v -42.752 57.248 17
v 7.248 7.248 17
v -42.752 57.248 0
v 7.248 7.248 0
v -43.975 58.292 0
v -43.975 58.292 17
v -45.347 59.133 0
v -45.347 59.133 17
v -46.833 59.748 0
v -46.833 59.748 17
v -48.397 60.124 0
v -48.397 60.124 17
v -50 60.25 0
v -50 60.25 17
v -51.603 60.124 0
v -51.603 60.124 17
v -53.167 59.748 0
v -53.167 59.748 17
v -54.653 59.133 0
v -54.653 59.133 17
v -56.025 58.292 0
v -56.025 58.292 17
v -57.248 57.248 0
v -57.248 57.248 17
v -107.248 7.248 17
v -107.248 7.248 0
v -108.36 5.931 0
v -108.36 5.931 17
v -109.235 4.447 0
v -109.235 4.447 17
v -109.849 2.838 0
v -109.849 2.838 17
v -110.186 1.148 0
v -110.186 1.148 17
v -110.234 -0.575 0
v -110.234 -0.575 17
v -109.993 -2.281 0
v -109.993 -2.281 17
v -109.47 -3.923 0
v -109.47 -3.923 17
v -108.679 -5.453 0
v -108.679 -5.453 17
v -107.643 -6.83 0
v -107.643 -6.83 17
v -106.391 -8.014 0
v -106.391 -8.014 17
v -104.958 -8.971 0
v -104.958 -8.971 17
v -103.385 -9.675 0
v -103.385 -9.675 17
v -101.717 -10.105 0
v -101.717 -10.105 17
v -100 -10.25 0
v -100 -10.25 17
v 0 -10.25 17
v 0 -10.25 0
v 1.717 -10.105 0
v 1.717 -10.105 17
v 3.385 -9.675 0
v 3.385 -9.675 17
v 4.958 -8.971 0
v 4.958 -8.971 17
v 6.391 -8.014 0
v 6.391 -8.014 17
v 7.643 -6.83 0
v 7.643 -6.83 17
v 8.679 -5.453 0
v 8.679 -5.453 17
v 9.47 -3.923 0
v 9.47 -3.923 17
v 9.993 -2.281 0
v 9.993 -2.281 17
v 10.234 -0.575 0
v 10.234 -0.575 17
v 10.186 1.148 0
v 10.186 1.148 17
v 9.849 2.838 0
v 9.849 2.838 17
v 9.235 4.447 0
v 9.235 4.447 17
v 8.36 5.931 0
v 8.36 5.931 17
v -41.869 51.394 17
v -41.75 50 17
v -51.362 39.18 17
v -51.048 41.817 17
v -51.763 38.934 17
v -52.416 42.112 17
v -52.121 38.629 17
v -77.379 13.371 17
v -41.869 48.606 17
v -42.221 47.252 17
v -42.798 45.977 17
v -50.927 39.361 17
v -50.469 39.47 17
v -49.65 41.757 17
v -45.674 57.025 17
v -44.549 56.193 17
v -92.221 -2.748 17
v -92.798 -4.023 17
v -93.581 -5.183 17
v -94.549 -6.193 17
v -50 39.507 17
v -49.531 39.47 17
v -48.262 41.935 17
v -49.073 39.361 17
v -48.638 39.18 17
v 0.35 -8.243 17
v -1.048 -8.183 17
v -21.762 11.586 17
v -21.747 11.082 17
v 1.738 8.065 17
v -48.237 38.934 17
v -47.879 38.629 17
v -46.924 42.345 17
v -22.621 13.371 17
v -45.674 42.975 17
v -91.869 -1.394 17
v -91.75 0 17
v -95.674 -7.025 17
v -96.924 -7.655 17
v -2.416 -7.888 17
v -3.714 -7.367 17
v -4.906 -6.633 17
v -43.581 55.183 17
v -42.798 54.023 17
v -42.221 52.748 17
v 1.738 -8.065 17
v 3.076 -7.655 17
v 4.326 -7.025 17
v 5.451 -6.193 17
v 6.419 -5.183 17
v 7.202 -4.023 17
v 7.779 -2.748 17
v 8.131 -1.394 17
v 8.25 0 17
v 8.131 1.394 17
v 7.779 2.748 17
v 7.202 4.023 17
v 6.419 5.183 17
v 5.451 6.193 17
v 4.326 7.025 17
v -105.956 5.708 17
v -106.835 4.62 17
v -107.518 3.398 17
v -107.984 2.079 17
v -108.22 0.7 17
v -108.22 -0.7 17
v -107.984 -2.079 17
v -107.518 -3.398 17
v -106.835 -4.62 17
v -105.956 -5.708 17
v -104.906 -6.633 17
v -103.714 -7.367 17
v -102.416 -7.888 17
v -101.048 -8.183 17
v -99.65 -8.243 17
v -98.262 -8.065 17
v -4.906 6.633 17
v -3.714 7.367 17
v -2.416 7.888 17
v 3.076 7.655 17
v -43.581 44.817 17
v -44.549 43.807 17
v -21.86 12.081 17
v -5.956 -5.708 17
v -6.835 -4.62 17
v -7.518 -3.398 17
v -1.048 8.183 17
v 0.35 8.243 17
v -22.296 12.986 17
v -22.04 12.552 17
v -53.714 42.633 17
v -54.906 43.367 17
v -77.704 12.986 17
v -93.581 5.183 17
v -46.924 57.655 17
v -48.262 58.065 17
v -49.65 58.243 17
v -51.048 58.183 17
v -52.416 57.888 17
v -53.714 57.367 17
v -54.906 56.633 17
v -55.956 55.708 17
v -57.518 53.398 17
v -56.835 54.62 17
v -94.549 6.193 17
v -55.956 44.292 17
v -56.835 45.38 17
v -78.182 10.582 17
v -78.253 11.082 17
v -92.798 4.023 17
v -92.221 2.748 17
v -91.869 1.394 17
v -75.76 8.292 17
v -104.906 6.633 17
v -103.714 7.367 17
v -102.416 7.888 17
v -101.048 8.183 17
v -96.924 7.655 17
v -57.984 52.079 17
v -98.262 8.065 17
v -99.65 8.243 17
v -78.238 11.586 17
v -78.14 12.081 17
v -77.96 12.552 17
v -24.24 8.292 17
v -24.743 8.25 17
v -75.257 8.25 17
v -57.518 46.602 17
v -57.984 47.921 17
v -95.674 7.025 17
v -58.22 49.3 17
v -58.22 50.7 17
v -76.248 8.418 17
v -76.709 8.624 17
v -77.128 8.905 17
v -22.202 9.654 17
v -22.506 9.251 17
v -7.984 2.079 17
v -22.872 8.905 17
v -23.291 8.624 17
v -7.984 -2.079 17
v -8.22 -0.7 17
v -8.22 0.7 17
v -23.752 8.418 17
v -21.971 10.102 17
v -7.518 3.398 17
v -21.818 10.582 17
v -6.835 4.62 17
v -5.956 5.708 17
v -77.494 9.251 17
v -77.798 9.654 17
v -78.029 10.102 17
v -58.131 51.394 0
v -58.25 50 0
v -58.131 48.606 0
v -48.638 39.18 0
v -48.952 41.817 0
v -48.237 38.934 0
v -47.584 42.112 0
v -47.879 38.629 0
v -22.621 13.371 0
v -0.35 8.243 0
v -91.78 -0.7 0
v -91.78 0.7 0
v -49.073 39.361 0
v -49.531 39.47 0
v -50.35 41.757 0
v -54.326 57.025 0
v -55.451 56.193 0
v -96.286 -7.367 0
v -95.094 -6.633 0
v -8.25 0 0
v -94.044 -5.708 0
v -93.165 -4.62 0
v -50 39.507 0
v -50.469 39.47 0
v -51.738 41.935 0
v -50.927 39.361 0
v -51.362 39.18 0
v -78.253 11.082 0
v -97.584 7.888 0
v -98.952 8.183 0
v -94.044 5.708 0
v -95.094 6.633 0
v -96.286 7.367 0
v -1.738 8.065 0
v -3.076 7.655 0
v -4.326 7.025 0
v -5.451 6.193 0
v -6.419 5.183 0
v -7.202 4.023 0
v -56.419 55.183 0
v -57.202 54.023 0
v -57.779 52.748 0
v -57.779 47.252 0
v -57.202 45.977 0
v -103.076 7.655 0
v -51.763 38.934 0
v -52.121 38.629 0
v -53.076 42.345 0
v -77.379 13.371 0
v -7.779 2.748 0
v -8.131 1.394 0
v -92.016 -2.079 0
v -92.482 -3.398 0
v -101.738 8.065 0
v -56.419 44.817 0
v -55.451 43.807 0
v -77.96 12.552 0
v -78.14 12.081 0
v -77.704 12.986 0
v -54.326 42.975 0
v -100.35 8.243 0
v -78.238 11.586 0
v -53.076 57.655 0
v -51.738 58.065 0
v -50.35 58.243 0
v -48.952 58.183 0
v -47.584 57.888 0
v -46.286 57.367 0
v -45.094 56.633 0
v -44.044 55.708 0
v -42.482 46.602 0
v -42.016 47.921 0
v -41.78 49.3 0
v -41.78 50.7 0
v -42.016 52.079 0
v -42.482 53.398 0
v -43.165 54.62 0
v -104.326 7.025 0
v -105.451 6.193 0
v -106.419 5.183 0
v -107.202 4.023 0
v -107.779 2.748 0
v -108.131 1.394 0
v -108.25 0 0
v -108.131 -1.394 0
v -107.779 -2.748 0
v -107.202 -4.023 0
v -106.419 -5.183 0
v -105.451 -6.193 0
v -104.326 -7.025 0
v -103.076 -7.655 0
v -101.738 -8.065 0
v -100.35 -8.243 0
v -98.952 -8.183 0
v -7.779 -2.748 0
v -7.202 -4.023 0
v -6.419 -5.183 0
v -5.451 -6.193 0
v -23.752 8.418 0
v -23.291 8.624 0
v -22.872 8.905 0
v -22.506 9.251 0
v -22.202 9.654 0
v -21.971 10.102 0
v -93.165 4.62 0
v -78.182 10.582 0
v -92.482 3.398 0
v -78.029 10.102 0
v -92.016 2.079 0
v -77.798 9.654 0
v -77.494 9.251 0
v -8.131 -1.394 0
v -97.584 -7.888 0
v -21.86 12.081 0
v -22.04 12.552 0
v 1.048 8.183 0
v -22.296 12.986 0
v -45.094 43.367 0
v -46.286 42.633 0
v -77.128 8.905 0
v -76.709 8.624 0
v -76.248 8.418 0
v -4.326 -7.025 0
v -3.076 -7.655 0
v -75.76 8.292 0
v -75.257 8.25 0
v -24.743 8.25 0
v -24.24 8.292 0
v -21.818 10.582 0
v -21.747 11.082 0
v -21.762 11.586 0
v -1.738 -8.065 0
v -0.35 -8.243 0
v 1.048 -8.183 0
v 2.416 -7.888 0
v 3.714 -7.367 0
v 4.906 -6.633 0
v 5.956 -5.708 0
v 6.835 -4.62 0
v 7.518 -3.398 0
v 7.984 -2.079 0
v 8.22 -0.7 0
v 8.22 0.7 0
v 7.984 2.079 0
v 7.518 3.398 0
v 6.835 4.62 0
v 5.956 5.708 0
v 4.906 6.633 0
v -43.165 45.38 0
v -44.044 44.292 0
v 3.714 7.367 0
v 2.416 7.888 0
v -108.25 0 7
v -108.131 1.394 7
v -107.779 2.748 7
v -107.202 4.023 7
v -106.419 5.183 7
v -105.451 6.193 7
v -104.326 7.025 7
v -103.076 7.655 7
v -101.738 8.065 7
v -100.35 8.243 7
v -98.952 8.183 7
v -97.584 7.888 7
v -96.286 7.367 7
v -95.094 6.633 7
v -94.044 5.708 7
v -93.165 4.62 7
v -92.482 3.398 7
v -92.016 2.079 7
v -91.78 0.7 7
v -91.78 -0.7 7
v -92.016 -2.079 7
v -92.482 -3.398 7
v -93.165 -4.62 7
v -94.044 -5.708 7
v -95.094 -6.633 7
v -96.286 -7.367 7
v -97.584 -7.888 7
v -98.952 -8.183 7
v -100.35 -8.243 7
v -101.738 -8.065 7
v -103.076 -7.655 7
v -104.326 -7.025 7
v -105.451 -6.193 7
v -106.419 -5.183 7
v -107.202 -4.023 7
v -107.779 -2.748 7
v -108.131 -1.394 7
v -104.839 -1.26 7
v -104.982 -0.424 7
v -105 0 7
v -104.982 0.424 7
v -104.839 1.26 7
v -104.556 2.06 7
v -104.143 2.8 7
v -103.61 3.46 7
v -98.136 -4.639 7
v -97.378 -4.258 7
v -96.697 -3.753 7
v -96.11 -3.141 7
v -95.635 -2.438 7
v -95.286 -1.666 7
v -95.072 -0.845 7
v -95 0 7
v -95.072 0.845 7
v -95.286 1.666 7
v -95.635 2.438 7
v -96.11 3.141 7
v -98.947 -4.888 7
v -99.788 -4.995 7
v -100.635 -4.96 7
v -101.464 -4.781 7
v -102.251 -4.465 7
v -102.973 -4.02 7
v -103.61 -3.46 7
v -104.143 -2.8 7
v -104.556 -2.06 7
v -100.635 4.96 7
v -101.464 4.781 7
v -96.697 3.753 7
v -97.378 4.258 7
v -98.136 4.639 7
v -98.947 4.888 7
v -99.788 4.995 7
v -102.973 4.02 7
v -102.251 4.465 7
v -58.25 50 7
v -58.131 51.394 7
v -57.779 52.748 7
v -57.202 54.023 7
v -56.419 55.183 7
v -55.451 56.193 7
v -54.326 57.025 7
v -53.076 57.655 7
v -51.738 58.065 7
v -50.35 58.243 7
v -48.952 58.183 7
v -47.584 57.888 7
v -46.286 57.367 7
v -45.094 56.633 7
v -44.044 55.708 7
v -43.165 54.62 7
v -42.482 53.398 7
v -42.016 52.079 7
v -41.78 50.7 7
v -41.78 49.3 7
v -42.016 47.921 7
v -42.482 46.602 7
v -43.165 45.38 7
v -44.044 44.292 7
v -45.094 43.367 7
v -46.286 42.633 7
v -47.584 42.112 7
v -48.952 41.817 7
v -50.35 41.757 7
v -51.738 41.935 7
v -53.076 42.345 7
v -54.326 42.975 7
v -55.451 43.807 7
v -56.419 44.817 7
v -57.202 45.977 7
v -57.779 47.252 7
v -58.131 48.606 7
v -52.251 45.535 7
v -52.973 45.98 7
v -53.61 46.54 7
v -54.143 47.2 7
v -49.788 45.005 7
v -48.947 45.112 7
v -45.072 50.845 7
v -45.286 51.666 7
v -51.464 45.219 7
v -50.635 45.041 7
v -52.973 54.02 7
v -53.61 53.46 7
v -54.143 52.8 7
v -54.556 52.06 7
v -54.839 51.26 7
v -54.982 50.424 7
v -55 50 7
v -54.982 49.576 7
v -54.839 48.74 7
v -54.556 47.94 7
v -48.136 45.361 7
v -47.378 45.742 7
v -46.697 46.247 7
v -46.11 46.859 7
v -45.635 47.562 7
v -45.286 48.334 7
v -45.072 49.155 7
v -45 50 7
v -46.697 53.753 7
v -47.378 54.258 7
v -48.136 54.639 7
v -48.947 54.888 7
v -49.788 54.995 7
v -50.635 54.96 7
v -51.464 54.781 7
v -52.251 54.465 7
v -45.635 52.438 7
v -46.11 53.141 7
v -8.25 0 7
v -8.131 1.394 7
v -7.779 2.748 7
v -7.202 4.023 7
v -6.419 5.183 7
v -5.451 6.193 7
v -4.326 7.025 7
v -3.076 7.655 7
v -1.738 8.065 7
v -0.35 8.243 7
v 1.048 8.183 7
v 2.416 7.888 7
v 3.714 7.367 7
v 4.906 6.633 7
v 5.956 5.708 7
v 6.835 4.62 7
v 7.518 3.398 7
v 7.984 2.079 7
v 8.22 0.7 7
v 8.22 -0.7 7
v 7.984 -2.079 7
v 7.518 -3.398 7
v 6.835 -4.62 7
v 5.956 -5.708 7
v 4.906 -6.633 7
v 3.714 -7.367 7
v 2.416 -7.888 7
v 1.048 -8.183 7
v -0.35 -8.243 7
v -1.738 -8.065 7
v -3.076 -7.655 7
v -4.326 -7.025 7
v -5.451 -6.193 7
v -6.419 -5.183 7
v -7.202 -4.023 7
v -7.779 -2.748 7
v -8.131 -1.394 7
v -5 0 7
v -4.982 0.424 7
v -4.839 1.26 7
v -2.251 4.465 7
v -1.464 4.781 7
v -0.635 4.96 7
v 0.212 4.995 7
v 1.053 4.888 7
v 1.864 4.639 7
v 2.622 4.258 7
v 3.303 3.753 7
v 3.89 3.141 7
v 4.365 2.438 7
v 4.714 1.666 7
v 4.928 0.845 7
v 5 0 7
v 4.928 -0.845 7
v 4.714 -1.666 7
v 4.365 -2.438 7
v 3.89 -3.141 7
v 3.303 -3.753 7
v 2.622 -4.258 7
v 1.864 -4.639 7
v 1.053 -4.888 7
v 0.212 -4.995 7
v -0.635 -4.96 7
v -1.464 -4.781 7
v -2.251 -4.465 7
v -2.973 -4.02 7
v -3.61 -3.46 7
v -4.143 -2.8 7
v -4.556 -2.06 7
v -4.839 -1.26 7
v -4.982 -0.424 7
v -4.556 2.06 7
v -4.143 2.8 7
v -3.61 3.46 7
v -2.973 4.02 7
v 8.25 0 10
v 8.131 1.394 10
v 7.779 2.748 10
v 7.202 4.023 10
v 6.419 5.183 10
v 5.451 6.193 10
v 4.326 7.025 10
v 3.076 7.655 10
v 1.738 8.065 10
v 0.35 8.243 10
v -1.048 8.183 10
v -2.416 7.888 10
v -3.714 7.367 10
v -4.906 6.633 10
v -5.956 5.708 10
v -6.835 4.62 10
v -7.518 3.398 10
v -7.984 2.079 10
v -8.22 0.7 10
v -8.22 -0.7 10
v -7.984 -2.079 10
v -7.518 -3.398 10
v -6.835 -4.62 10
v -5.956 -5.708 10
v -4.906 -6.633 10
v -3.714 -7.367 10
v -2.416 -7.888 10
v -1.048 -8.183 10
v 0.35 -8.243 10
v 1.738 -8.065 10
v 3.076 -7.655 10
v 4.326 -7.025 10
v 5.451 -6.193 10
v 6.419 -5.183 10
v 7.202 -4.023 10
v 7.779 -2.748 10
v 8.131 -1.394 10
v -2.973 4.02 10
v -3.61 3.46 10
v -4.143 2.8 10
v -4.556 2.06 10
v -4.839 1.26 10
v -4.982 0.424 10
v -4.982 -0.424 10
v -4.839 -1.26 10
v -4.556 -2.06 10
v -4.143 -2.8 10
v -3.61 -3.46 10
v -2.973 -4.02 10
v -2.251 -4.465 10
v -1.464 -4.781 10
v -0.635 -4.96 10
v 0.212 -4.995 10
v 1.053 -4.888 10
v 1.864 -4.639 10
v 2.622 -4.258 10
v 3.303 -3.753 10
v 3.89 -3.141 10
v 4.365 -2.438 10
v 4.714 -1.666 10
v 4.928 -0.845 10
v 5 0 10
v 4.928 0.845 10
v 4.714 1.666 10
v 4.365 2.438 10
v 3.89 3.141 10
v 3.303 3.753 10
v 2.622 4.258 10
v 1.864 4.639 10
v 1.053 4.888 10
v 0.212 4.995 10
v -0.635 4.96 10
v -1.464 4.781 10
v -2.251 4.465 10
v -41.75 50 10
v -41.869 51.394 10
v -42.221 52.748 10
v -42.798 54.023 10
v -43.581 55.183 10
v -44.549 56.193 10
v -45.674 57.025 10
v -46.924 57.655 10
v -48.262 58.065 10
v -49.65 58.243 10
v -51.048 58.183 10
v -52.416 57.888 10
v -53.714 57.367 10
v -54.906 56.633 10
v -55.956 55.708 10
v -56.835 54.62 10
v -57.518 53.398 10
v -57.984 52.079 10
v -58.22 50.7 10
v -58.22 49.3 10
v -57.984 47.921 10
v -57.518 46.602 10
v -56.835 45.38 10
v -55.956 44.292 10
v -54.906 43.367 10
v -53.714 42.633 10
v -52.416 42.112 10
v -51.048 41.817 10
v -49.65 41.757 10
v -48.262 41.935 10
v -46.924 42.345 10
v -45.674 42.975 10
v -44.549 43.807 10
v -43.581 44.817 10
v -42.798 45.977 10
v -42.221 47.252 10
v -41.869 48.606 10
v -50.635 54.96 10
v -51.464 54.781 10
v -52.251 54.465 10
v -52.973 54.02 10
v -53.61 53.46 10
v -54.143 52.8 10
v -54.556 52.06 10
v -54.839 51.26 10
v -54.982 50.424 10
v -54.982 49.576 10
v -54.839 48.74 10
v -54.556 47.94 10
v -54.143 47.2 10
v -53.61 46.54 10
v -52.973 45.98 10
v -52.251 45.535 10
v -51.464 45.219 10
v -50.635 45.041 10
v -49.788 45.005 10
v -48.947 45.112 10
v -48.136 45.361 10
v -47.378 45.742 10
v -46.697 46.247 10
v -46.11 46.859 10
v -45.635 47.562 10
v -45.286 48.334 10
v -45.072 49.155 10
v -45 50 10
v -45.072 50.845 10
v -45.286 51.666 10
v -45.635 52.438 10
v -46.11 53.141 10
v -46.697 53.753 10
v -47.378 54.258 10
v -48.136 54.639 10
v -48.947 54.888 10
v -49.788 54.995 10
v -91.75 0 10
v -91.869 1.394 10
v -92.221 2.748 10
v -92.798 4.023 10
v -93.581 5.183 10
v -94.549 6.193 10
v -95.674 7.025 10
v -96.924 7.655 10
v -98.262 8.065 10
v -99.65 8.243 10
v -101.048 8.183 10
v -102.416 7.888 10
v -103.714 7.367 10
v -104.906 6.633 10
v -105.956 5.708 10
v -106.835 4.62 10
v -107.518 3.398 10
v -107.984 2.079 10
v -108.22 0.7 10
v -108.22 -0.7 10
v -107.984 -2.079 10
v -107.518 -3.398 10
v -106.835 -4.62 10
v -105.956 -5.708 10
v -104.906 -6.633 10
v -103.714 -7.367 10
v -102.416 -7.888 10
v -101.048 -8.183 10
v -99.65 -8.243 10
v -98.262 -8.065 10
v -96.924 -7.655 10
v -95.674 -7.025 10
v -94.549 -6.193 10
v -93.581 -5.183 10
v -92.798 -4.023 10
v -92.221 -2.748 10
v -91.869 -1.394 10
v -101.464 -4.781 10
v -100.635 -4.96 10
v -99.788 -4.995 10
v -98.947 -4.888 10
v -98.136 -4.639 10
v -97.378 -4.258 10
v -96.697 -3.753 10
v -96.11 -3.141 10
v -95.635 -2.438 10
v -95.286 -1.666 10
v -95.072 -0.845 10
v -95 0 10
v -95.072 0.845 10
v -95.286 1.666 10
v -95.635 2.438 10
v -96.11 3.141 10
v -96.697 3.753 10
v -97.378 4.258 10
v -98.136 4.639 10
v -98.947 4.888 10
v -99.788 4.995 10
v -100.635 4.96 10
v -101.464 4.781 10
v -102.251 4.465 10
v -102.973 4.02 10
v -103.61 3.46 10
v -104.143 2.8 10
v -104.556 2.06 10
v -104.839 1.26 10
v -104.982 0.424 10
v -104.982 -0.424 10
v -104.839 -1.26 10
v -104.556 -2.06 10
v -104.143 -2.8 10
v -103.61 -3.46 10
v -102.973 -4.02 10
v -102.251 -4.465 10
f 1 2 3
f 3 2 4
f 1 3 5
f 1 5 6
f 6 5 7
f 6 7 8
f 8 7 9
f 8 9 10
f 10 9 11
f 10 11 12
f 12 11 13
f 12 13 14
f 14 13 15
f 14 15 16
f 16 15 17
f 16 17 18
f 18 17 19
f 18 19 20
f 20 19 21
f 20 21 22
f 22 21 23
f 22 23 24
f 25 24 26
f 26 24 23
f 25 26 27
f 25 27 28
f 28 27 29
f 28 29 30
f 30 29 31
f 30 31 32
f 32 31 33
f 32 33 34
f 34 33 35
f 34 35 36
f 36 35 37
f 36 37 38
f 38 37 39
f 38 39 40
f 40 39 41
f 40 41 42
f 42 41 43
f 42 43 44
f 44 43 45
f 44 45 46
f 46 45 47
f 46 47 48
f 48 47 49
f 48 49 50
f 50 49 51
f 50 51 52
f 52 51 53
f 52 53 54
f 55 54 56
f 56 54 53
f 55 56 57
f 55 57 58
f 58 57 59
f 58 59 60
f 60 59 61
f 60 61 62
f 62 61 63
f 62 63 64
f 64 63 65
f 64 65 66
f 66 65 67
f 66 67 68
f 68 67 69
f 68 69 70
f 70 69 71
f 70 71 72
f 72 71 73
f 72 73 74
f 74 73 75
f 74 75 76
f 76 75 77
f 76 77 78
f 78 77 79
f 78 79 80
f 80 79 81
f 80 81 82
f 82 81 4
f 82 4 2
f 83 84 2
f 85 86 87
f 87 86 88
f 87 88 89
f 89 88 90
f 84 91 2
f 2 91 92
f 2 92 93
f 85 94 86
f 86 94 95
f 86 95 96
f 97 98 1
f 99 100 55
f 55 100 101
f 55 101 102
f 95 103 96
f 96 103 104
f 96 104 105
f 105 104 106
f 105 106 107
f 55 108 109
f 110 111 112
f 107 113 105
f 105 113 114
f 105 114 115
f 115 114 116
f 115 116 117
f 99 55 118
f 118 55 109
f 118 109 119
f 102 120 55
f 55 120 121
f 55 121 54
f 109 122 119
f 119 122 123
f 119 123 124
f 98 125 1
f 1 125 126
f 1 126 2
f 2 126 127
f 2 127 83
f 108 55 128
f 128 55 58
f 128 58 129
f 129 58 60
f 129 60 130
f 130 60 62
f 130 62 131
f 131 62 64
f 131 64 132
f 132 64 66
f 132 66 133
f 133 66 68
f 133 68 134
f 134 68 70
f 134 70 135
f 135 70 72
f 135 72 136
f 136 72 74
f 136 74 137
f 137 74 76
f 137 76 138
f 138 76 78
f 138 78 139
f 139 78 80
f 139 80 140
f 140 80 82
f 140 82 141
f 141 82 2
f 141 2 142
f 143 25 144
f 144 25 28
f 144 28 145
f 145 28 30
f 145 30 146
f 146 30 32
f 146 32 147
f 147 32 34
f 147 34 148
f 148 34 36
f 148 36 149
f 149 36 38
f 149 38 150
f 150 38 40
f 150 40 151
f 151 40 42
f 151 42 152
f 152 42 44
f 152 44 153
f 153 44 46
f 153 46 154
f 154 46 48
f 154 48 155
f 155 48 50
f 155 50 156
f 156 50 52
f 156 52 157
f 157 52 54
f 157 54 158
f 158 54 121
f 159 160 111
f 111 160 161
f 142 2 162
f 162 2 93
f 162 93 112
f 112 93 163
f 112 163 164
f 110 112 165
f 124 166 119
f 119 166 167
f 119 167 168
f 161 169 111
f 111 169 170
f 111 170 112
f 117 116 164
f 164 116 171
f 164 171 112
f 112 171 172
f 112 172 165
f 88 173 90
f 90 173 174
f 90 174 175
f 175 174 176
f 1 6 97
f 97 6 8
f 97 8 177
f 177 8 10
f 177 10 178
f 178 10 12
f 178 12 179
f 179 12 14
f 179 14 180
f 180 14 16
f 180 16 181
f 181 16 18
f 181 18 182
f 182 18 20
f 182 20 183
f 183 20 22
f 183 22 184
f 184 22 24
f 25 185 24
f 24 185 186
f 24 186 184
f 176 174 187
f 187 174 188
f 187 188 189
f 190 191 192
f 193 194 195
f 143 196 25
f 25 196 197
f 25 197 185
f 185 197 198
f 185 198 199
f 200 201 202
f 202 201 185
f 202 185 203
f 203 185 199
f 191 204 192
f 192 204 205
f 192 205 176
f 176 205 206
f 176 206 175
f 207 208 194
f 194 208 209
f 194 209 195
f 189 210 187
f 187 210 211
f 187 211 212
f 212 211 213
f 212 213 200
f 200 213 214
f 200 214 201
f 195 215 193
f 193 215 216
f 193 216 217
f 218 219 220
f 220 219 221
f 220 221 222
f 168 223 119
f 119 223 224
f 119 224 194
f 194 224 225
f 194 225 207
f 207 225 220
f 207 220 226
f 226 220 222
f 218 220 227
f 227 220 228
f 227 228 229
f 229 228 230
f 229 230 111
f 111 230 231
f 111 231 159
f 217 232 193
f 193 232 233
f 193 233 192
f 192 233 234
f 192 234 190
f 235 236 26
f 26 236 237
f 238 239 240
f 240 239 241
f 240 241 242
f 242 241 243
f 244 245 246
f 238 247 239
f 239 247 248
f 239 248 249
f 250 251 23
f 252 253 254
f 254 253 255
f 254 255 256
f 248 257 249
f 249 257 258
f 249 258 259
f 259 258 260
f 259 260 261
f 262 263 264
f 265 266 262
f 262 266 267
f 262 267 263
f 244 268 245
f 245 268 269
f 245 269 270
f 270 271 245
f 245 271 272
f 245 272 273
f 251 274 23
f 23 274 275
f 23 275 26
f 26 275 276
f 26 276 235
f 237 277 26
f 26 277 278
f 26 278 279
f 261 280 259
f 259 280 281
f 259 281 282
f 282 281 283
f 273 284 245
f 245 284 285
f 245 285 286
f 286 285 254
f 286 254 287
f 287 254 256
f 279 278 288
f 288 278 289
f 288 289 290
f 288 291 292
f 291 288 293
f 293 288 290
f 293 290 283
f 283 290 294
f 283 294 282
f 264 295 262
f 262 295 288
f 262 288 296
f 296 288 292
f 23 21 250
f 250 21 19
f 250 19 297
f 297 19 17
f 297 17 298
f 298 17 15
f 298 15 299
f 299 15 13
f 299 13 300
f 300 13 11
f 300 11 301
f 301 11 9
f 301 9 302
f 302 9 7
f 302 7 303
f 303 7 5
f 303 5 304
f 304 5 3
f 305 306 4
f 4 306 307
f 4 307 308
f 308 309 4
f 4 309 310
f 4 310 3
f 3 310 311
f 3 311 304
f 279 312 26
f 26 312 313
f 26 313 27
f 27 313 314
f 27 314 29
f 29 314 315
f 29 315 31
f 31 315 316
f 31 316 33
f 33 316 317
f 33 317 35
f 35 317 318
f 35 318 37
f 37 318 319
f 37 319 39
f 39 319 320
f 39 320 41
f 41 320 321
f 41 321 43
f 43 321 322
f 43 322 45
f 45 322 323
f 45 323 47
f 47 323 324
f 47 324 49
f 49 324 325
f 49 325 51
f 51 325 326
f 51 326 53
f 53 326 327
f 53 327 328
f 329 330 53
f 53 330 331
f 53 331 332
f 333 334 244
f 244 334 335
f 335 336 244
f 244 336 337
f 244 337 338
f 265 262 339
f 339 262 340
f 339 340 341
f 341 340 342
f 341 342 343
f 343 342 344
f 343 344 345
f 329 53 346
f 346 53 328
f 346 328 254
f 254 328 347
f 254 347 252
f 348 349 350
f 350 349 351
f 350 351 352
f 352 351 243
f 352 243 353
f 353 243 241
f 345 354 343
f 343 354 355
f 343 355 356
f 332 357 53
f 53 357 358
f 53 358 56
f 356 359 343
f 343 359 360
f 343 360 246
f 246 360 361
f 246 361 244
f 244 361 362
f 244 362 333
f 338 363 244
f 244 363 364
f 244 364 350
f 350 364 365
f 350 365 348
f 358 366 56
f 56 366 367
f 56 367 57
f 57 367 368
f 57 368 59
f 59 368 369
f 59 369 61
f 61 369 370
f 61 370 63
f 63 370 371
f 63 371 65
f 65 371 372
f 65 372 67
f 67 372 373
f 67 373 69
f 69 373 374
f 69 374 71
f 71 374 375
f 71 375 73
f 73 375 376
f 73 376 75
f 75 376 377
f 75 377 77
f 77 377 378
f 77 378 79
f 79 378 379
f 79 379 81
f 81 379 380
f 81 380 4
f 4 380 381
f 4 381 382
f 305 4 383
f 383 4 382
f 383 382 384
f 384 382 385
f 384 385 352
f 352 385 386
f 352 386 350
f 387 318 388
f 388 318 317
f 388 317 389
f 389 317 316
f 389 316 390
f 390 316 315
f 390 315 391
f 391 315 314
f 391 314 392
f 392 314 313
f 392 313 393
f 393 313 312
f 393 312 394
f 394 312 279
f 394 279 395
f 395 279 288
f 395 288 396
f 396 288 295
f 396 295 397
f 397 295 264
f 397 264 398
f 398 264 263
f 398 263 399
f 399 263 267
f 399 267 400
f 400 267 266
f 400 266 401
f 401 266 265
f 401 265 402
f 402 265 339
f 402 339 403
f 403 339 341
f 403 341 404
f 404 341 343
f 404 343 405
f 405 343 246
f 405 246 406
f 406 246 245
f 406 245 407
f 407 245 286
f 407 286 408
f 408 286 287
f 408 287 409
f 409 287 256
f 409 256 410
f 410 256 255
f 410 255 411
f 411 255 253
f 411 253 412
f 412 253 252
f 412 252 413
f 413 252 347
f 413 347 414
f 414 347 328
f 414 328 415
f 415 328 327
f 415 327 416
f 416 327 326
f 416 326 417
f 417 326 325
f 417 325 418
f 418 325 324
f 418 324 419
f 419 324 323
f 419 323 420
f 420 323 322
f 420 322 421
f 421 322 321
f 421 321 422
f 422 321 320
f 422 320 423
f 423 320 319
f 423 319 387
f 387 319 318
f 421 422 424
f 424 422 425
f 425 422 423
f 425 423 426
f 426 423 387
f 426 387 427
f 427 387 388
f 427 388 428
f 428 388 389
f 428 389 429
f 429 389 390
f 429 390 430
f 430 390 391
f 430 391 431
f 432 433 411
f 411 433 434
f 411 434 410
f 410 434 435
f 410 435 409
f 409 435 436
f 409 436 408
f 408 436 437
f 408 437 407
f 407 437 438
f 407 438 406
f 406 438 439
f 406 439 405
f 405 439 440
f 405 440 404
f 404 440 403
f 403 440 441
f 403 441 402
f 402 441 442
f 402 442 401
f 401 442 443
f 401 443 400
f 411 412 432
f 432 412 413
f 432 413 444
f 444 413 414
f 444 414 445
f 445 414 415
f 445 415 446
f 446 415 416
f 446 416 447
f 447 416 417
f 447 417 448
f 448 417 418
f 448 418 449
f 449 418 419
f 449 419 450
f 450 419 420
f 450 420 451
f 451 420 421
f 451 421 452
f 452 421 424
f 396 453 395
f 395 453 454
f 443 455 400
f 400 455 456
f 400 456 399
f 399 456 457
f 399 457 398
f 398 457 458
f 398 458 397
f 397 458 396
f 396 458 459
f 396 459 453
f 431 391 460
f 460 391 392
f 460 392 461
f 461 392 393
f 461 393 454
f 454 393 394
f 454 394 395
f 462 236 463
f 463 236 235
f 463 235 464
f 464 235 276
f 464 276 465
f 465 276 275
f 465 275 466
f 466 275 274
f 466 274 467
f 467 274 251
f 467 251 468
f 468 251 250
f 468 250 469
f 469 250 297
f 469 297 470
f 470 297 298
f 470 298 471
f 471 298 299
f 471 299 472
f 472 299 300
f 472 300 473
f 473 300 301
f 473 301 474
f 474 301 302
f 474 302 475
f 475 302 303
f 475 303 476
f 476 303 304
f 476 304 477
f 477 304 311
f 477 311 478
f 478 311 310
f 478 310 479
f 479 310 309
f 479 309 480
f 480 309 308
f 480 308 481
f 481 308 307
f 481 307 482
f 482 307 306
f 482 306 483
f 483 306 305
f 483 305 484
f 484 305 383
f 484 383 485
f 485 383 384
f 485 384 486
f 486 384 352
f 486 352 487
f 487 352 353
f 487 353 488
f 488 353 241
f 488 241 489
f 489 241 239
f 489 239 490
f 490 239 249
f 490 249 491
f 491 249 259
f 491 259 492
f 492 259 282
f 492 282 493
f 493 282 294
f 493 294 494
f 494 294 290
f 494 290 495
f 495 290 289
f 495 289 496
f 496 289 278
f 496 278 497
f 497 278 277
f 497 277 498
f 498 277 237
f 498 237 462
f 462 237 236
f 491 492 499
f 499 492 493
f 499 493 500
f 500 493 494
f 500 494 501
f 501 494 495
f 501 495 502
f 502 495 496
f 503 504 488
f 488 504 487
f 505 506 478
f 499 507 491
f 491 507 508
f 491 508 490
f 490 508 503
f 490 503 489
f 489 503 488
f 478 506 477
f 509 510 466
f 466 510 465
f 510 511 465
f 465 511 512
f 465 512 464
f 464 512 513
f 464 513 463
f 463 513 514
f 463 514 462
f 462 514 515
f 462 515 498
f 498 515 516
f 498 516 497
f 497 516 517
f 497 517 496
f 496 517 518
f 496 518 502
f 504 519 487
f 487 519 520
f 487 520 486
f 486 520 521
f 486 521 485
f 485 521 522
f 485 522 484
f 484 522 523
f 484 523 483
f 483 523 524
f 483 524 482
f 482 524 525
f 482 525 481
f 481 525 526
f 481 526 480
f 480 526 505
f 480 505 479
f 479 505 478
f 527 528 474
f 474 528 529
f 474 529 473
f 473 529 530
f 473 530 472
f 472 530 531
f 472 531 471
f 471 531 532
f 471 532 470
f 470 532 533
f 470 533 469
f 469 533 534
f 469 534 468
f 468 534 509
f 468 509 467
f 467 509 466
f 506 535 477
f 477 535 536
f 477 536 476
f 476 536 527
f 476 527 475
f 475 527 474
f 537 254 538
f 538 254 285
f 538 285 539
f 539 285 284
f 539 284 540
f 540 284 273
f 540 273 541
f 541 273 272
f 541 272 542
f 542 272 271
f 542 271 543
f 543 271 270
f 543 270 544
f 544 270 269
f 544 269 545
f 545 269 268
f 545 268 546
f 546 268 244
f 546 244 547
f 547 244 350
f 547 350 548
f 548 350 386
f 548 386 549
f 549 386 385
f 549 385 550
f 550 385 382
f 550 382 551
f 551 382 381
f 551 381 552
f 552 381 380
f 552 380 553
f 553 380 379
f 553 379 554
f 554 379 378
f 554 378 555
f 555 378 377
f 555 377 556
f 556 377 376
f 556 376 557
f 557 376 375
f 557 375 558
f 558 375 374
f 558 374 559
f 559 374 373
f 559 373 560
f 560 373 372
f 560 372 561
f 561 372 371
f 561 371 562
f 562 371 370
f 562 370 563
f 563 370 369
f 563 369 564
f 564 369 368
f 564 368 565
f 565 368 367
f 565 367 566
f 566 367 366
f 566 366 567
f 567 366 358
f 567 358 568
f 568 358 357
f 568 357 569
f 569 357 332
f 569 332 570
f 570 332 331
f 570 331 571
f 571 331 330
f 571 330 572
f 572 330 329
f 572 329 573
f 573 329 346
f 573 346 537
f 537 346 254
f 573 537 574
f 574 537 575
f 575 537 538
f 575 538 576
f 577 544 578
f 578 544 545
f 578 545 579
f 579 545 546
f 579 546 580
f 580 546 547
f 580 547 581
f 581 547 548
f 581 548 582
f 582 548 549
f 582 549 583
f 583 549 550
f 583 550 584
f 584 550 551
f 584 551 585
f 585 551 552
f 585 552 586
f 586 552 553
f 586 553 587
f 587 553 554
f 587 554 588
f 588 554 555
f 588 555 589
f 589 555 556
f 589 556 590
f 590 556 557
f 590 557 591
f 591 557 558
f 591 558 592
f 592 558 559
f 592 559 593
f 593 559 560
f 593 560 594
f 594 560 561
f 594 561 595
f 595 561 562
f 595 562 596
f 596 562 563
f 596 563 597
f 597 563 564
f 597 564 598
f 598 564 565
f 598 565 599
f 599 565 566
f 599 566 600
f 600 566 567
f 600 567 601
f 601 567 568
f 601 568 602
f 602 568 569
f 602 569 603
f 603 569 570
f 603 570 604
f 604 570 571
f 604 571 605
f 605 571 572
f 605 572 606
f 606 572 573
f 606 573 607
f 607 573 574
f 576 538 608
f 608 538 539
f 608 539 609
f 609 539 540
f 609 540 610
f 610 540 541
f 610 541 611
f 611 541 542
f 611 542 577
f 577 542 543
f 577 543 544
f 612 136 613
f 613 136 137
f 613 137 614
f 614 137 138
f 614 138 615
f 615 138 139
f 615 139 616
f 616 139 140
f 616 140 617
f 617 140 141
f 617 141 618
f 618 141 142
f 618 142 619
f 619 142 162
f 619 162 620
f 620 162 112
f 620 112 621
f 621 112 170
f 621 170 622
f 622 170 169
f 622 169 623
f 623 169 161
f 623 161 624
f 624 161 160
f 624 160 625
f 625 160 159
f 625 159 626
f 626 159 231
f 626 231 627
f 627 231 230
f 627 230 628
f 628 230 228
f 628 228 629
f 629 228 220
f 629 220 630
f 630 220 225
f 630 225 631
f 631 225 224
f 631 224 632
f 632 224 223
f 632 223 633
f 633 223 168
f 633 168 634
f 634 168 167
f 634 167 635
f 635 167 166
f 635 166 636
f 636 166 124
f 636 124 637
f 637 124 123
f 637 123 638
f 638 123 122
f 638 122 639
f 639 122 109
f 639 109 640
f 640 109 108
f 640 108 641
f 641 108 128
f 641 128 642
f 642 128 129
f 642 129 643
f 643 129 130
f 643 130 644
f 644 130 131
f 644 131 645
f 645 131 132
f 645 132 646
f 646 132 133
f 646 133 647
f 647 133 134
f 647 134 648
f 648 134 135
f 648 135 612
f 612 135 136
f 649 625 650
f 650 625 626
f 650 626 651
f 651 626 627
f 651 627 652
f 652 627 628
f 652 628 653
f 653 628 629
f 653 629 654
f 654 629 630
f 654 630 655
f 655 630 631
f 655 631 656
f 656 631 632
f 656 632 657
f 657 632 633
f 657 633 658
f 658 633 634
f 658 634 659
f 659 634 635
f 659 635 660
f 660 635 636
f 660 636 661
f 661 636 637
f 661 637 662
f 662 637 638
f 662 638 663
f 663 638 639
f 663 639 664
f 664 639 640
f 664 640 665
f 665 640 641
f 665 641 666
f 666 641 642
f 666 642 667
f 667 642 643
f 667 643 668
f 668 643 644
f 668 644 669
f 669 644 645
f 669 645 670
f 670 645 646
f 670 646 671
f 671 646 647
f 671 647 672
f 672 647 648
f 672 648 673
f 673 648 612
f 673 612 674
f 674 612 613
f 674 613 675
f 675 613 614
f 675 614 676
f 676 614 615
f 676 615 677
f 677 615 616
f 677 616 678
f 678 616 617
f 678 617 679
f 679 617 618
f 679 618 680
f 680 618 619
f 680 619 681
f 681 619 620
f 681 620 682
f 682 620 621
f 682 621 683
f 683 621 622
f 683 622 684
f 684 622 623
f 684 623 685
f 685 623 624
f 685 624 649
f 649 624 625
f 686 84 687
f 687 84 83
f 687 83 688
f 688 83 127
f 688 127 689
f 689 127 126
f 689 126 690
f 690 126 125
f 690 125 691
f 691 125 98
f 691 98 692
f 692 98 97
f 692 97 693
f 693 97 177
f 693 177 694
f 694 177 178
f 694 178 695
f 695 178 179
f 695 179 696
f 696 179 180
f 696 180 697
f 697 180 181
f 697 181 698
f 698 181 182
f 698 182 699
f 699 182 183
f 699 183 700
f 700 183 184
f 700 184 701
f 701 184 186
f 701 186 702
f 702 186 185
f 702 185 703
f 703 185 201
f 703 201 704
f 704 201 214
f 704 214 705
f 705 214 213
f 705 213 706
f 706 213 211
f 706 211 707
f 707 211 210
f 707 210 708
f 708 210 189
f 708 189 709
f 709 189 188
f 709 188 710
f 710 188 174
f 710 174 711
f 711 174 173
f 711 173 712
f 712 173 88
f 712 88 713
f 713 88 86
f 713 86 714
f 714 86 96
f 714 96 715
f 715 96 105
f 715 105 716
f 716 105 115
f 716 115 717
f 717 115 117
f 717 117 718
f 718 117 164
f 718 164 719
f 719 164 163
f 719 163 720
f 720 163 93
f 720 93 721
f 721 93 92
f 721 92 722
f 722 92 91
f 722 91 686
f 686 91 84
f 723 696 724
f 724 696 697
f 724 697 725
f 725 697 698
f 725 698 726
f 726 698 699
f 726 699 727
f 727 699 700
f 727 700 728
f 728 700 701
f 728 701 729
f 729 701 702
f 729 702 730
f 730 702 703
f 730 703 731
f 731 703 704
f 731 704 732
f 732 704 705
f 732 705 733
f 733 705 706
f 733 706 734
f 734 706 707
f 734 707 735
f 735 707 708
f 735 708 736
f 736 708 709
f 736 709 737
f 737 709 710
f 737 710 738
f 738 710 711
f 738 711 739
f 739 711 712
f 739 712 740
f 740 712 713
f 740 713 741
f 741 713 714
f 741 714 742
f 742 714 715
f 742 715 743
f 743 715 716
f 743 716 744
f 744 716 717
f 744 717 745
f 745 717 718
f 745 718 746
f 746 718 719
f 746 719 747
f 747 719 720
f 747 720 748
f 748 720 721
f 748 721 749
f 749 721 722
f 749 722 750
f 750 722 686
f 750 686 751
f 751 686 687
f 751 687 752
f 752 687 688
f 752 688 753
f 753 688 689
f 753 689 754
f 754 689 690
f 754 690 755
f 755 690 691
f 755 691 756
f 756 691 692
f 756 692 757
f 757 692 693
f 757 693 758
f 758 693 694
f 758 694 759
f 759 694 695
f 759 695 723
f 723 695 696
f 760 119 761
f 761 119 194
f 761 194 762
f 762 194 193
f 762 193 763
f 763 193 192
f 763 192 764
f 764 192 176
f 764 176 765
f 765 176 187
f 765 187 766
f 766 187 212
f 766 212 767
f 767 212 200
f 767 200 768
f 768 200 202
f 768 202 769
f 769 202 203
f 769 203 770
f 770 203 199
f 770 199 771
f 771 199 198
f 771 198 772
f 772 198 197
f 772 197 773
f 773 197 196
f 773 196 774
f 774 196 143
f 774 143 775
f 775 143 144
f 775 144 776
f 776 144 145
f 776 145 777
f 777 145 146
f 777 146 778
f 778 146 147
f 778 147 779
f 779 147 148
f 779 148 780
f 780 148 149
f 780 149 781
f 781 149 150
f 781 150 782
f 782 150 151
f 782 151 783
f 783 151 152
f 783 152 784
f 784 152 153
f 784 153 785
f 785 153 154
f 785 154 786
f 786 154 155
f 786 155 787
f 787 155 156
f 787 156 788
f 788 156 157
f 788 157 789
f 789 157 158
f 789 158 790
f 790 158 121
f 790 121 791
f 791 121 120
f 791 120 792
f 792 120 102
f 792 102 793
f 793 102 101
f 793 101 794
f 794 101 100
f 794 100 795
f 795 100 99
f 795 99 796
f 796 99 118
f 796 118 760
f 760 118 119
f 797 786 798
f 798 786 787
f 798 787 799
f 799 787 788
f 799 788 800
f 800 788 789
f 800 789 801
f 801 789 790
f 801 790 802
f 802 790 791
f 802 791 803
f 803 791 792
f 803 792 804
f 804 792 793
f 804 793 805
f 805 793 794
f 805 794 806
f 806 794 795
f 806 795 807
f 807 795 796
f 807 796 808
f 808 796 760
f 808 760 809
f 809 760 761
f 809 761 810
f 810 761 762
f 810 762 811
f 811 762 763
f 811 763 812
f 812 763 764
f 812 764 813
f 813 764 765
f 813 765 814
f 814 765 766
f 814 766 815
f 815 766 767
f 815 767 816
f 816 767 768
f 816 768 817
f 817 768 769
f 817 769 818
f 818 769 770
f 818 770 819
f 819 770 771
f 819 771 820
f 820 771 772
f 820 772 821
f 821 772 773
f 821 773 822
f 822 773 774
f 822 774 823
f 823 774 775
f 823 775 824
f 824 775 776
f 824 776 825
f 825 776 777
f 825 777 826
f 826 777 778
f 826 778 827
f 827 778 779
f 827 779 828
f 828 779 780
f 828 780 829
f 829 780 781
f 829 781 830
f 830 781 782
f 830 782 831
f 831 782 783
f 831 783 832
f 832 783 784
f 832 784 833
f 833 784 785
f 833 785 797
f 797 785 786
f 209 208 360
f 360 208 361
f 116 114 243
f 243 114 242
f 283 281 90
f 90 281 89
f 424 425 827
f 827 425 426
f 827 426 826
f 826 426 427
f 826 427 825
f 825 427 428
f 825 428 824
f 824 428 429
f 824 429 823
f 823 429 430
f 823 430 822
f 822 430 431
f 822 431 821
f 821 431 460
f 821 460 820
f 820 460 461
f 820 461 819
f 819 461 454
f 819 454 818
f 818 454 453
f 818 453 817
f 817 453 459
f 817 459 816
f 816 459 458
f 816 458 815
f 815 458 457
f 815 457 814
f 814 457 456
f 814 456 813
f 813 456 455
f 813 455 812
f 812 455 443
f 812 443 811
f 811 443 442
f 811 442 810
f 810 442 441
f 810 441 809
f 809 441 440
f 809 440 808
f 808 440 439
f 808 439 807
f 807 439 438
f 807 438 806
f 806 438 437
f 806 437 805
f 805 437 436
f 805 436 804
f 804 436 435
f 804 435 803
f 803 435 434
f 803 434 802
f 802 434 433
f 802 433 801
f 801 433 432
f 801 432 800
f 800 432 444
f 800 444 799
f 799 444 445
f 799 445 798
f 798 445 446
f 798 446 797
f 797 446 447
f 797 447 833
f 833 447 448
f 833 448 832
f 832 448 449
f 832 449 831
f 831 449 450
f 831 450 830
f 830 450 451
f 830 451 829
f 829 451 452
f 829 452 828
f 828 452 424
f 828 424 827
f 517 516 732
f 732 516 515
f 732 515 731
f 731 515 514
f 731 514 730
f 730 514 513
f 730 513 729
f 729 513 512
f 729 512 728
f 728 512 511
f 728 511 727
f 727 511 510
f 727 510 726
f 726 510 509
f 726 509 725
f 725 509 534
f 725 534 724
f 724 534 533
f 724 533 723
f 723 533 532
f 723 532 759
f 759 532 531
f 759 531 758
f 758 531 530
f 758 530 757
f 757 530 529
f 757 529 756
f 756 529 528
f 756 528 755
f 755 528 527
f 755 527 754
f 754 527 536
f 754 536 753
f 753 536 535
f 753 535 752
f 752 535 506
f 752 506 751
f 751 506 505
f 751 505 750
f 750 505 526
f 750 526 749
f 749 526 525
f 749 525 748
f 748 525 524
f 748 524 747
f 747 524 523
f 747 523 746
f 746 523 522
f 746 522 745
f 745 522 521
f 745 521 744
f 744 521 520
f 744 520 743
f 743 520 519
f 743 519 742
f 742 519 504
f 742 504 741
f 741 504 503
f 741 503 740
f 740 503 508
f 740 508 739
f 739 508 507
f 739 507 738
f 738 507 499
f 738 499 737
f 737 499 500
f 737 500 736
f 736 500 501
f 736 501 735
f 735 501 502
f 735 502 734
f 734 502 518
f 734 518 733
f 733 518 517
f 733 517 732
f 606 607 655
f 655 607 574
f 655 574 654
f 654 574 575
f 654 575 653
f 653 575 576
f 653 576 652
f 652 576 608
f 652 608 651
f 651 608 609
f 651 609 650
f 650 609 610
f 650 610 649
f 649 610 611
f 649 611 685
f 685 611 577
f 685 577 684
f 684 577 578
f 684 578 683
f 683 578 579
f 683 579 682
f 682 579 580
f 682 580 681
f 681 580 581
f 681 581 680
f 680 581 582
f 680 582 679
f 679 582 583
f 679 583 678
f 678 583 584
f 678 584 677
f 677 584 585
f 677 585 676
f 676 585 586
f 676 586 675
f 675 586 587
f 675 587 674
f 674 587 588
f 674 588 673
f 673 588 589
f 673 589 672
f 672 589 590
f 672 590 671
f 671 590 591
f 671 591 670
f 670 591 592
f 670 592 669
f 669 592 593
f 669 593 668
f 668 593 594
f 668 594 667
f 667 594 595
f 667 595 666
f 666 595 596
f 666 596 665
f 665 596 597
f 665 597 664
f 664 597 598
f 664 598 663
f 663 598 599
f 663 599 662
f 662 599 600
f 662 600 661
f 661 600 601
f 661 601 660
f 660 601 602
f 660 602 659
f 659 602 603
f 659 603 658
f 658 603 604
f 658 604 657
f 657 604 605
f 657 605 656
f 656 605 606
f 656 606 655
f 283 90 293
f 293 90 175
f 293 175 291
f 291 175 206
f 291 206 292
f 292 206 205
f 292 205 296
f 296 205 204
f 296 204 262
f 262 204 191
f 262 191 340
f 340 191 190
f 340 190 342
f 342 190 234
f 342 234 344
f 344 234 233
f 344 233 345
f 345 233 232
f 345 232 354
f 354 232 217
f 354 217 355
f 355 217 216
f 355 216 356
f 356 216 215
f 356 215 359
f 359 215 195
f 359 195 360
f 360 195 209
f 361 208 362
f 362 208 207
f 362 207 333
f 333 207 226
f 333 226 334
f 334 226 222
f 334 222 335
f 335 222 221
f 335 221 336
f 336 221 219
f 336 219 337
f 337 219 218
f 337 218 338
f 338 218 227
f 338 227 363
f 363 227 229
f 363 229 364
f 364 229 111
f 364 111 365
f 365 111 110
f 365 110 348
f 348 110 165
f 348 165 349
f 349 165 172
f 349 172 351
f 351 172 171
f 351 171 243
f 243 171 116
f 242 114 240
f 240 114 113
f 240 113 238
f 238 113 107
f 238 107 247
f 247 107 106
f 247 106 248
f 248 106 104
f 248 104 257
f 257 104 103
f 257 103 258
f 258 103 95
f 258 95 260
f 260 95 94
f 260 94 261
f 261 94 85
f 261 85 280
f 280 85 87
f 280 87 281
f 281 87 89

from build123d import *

# Parameters (mm, degrees)
BOSS_EXTRUDE4_DEPTH = 17
SKETCH3_R           = 8.25
CUT_EXTRUDE1_DEPTH  = 7
CUT_EXTRUDE2_START  = -7
SKETCH4_R           = 8.25
CUT_EXTRUDE2_DEPTH  = 7
CUT_EXTRUDE3_DEPTH  = 127.783772621
SKETCH6_R           = 5
CUT_EXTRUDE4_DEPTH  = 16.6
FILLET1_R           = 3


with BuildPart() as part:
    # Sketch2 → Boss-Extrude4 (new body)
    with BuildSketch(Plane.XY):
        with BuildLine():
            Line((-100, 10.25), (0, 10.25))
            ThreePointArc((0, 10.25), (10.25, 0), (0, -10.25))
            Line((0, -10.25), (-100, -10.25))
            ThreePointArc((-100, -10.25), (-110.25, 0), (-100, 10.25))
        make_face()
        with BuildLine():
            Line((-7.247844507, -7.247844507), (-57.247844507, 42.752155493))
            ThreePointArc((-57.247844507, 42.752155493), (-57.247844507, 57.247844507), (-42.752155493, 57.247844507))
            Line((-42.752155493, 57.247844507), (7.247844507, 7.247844507))
            ThreePointArc((7.247844507, 7.247844507), (7.247844507, -7.247844507), (-7.247844507, -7.247844507))
        make_face()
        with BuildLine():
            Line((-107.247844507, 7.247844507), (-57.247844507, 57.247844507))
            ThreePointArc((-57.247844507, 57.247844507), (-42.752155493, 57.247844507), (-42.752155493, 42.752155493))
            Line((-42.752155493, 42.752155493), (-92.752155493, -7.247844507))
            ThreePointArc((-92.752155493, -7.247844507), (-107.247844507, -7.247844507), (-107.247844507, 7.247844507))
        make_face()
    extrude(amount=BOSS_EXTRUDE4_DEPTH)

    # Sketch3 → Cut-Extrude1 (cut)
    with BuildSketch(Plane(origin=(0, 0, 0), x_dir=(-1, 0, 0), z_dir=(0, 0, -1))):
        Circle(SKETCH3_R)
        with Locations((50, 50)):
            Circle(SKETCH3_R)
        with Locations((100, 0)):
            Circle(SKETCH3_R)
    extrude(amount=-CUT_EXTRUDE1_DEPTH, mode=Mode.SUBTRACT)

    # Sketch4 → Cut-Extrude2 (cut)
    with BuildSketch(Plane.XY.offset(17).offset(CUT_EXTRUDE2_START)):
        with Locations(Location((-100, 0, 0), (0, 0, 180))):
            Circle(SKETCH4_R)
        with Locations(Location((-50, 50, 0), (0, 0, 180))):
            Circle(SKETCH4_R)
        with Locations(Location((0, 0, 0), (0, 0, 180))):
            Circle(SKETCH4_R)
    extrude(amount=CUT_EXTRUDE2_DEPTH, mode=Mode.SUBTRACT)

    # Sketch5 → Cut-Extrude3 (cut, through all)
    with BuildSketch(Plane(origin=(0, 0, 0), x_dir=(-1, 0, 0), z_dir=(0, 0, -1))):
        Polygon((17.5, 8.25), (50, 40.75), (82.5, 8.25), align=None)
    extrude(amount=-CUT_EXTRUDE3_DEPTH, mode=Mode.SUBTRACT)

    # Sketch6 → Cut-Extrude4 (cut)
    with BuildSketch(Plane.XY.offset(17)):
        with Locations((-100, 0)):
            Circle(SKETCH6_R)
        with Locations((-50, 50)):
            Circle(SKETCH6_R)
        Circle(SKETCH6_R)
    extrude(amount=-CUT_EXTRUDE4_DEPTH, mode=Mode.SUBTRACT)

    # Fillet1
    fillet1_edges = [part.edges().sort_by_distance(p)[0] for p in [
        (-82.5, 8.25, 8.5),
        (-17.5, 8.25, 8.5),
        (-50, 40.75, 8.5),
    ]]
    fillet(fillet1_edges, radius=FILLET1_R)


solid = part.part
